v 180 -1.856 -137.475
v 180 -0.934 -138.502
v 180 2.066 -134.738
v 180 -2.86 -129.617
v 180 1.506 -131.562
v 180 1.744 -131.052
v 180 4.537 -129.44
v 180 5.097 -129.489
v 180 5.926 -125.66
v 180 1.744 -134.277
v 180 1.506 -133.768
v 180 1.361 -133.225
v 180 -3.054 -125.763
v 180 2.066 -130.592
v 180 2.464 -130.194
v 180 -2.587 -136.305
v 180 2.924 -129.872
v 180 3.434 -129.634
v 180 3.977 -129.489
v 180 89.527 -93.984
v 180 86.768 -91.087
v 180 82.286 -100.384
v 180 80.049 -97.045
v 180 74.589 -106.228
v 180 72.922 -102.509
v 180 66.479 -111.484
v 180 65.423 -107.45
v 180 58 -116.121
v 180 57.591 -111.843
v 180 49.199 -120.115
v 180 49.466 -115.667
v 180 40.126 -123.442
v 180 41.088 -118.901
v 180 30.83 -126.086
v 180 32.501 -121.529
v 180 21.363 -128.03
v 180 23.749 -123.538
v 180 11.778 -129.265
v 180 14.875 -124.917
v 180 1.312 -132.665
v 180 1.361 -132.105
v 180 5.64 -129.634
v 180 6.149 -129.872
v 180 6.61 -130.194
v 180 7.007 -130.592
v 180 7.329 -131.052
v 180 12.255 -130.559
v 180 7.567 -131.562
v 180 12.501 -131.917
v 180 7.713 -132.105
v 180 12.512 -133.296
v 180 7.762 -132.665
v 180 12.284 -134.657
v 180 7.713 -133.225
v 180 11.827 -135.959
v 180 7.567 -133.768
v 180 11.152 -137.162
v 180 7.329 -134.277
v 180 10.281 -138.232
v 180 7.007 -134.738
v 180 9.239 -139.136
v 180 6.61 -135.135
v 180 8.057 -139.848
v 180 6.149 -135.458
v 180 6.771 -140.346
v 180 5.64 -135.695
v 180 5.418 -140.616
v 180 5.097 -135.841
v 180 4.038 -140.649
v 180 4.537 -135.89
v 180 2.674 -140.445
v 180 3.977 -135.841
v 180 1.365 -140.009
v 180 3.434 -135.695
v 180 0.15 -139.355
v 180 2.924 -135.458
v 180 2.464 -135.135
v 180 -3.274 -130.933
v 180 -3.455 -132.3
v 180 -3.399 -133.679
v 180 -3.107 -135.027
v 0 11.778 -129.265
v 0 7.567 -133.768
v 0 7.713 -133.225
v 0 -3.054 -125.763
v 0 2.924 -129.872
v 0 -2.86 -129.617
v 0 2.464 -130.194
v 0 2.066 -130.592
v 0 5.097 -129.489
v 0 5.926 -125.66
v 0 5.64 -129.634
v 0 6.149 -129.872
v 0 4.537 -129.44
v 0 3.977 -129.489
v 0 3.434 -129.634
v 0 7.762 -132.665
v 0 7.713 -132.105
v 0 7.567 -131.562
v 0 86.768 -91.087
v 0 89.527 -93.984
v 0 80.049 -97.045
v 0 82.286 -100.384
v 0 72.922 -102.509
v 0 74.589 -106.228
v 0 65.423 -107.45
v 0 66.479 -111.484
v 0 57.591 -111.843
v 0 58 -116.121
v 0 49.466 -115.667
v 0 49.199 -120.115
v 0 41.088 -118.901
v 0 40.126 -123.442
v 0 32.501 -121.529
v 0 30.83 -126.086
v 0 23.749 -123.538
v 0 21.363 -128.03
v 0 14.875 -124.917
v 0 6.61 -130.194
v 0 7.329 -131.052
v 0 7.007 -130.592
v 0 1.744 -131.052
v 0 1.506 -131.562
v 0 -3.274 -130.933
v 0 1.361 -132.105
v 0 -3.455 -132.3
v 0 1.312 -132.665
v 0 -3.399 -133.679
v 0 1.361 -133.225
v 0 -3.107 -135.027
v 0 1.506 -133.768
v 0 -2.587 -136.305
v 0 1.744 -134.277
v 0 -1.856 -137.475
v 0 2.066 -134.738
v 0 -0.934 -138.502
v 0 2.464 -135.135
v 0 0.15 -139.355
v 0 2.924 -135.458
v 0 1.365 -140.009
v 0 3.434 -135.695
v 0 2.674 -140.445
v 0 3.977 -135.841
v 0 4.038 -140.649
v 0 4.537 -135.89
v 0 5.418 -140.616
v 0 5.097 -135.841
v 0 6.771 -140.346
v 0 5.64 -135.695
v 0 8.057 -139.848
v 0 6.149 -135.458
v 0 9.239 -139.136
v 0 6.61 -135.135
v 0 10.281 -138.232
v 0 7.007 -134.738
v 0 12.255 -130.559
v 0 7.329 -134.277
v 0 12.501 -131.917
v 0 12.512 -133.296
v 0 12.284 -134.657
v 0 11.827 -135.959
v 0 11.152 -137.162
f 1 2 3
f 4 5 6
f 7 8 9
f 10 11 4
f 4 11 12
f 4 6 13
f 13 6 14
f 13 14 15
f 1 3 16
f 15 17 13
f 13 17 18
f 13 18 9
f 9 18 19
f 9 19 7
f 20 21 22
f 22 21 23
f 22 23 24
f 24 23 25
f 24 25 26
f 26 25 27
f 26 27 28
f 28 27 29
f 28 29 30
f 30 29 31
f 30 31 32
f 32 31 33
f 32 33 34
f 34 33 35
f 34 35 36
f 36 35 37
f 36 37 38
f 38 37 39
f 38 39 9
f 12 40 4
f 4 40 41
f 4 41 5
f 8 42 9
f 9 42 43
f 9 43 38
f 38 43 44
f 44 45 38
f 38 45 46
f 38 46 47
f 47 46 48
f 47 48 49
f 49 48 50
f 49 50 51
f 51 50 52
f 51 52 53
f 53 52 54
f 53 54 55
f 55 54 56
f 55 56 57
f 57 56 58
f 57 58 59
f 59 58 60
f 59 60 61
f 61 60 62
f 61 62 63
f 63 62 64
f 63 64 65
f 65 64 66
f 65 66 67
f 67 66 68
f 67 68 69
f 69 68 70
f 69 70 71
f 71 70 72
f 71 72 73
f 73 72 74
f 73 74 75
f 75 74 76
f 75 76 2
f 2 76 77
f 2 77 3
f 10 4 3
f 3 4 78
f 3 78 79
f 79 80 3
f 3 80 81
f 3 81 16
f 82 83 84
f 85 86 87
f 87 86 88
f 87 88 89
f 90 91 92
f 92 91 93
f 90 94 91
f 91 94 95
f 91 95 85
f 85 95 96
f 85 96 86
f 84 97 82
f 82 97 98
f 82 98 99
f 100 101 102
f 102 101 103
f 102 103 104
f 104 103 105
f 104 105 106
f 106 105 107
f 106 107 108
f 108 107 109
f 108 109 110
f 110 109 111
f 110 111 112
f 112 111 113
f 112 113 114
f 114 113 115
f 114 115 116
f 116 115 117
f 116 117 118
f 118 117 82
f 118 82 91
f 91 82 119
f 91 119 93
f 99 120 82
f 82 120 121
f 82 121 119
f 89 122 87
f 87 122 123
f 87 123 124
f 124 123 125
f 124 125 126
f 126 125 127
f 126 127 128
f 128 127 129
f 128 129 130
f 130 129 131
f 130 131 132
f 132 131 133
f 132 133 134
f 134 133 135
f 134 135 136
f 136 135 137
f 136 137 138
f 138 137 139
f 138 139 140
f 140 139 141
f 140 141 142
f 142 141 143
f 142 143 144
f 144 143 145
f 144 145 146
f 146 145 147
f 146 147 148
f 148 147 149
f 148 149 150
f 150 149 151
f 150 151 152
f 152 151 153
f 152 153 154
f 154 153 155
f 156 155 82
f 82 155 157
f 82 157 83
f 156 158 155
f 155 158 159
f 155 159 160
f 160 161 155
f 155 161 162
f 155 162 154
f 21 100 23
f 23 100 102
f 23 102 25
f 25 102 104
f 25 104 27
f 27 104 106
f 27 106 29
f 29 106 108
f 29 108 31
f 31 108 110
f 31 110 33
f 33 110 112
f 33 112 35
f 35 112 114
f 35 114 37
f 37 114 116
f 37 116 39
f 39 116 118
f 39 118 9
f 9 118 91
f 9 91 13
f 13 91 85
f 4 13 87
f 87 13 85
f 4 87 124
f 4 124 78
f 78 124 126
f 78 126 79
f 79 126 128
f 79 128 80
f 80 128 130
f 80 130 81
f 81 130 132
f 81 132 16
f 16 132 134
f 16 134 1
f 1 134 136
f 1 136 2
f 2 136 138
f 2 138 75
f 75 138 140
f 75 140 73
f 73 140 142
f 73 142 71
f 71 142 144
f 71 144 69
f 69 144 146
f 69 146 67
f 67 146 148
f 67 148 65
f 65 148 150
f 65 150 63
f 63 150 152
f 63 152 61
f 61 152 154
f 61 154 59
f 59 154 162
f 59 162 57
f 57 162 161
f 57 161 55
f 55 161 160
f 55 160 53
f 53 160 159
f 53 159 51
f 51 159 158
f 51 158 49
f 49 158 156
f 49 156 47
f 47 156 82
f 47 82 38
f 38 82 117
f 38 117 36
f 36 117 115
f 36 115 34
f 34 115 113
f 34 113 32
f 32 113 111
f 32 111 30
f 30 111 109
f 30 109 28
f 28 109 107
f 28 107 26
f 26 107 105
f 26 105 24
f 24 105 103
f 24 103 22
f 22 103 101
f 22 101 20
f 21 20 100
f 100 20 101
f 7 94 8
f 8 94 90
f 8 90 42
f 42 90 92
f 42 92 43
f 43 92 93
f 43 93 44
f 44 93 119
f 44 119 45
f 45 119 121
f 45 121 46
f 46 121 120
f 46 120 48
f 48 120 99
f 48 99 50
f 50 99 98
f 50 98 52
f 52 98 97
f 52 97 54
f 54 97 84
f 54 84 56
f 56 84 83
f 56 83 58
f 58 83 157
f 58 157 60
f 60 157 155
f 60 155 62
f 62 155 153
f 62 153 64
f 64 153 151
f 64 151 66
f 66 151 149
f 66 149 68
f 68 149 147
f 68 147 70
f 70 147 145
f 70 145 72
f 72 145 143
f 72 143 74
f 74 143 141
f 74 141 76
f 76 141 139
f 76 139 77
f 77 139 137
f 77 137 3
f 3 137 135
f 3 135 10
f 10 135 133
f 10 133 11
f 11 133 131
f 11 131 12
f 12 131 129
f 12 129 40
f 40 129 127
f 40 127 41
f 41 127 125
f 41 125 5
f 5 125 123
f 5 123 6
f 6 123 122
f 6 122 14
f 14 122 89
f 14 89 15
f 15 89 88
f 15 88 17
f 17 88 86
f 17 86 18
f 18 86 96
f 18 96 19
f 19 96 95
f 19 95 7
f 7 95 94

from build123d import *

# Parameters (mm, degrees)
SKETCH1_R           = 3.225
BOSS_EXTRUDE1_DEPTH = 180


with BuildPart() as part:
    # Sketch1 → Boss-Extrude1 (new body)
    with BuildSketch(Plane(origin=(0, 0, 0), x_dir=(0, 0, -1), z_dir=(1, 0, 0))):
        with BuildLine():
            Line((91.08739178, 86.768237615), (93.983652249, 89.527164089))
            ThreePointArc((93.983652249, 89.527164089), (118.199696764, 53.636477187), (129.264525293, 11.778051656))
            ThreePointArc((129.264525293, 11.778051656), (140.662275505, 4.728846729), (129.616513334, -2.860035801))
            Line((129.616513334, -2.860035801), (125.762921617, -3.054103199))
            ThreePointArc((125.762921617, -3.054103199), (117.358543926, 45.305763073), (91.08739178, 86.768237615))
        make_face()
        with Locations((132.664587351, 4.536533997)):
            Circle(SKETCH1_R, mode=Mode.SUBTRACT)
    extrude(amount=BOSS_EXTRUDE1_DEPTH)


solid = part.part
